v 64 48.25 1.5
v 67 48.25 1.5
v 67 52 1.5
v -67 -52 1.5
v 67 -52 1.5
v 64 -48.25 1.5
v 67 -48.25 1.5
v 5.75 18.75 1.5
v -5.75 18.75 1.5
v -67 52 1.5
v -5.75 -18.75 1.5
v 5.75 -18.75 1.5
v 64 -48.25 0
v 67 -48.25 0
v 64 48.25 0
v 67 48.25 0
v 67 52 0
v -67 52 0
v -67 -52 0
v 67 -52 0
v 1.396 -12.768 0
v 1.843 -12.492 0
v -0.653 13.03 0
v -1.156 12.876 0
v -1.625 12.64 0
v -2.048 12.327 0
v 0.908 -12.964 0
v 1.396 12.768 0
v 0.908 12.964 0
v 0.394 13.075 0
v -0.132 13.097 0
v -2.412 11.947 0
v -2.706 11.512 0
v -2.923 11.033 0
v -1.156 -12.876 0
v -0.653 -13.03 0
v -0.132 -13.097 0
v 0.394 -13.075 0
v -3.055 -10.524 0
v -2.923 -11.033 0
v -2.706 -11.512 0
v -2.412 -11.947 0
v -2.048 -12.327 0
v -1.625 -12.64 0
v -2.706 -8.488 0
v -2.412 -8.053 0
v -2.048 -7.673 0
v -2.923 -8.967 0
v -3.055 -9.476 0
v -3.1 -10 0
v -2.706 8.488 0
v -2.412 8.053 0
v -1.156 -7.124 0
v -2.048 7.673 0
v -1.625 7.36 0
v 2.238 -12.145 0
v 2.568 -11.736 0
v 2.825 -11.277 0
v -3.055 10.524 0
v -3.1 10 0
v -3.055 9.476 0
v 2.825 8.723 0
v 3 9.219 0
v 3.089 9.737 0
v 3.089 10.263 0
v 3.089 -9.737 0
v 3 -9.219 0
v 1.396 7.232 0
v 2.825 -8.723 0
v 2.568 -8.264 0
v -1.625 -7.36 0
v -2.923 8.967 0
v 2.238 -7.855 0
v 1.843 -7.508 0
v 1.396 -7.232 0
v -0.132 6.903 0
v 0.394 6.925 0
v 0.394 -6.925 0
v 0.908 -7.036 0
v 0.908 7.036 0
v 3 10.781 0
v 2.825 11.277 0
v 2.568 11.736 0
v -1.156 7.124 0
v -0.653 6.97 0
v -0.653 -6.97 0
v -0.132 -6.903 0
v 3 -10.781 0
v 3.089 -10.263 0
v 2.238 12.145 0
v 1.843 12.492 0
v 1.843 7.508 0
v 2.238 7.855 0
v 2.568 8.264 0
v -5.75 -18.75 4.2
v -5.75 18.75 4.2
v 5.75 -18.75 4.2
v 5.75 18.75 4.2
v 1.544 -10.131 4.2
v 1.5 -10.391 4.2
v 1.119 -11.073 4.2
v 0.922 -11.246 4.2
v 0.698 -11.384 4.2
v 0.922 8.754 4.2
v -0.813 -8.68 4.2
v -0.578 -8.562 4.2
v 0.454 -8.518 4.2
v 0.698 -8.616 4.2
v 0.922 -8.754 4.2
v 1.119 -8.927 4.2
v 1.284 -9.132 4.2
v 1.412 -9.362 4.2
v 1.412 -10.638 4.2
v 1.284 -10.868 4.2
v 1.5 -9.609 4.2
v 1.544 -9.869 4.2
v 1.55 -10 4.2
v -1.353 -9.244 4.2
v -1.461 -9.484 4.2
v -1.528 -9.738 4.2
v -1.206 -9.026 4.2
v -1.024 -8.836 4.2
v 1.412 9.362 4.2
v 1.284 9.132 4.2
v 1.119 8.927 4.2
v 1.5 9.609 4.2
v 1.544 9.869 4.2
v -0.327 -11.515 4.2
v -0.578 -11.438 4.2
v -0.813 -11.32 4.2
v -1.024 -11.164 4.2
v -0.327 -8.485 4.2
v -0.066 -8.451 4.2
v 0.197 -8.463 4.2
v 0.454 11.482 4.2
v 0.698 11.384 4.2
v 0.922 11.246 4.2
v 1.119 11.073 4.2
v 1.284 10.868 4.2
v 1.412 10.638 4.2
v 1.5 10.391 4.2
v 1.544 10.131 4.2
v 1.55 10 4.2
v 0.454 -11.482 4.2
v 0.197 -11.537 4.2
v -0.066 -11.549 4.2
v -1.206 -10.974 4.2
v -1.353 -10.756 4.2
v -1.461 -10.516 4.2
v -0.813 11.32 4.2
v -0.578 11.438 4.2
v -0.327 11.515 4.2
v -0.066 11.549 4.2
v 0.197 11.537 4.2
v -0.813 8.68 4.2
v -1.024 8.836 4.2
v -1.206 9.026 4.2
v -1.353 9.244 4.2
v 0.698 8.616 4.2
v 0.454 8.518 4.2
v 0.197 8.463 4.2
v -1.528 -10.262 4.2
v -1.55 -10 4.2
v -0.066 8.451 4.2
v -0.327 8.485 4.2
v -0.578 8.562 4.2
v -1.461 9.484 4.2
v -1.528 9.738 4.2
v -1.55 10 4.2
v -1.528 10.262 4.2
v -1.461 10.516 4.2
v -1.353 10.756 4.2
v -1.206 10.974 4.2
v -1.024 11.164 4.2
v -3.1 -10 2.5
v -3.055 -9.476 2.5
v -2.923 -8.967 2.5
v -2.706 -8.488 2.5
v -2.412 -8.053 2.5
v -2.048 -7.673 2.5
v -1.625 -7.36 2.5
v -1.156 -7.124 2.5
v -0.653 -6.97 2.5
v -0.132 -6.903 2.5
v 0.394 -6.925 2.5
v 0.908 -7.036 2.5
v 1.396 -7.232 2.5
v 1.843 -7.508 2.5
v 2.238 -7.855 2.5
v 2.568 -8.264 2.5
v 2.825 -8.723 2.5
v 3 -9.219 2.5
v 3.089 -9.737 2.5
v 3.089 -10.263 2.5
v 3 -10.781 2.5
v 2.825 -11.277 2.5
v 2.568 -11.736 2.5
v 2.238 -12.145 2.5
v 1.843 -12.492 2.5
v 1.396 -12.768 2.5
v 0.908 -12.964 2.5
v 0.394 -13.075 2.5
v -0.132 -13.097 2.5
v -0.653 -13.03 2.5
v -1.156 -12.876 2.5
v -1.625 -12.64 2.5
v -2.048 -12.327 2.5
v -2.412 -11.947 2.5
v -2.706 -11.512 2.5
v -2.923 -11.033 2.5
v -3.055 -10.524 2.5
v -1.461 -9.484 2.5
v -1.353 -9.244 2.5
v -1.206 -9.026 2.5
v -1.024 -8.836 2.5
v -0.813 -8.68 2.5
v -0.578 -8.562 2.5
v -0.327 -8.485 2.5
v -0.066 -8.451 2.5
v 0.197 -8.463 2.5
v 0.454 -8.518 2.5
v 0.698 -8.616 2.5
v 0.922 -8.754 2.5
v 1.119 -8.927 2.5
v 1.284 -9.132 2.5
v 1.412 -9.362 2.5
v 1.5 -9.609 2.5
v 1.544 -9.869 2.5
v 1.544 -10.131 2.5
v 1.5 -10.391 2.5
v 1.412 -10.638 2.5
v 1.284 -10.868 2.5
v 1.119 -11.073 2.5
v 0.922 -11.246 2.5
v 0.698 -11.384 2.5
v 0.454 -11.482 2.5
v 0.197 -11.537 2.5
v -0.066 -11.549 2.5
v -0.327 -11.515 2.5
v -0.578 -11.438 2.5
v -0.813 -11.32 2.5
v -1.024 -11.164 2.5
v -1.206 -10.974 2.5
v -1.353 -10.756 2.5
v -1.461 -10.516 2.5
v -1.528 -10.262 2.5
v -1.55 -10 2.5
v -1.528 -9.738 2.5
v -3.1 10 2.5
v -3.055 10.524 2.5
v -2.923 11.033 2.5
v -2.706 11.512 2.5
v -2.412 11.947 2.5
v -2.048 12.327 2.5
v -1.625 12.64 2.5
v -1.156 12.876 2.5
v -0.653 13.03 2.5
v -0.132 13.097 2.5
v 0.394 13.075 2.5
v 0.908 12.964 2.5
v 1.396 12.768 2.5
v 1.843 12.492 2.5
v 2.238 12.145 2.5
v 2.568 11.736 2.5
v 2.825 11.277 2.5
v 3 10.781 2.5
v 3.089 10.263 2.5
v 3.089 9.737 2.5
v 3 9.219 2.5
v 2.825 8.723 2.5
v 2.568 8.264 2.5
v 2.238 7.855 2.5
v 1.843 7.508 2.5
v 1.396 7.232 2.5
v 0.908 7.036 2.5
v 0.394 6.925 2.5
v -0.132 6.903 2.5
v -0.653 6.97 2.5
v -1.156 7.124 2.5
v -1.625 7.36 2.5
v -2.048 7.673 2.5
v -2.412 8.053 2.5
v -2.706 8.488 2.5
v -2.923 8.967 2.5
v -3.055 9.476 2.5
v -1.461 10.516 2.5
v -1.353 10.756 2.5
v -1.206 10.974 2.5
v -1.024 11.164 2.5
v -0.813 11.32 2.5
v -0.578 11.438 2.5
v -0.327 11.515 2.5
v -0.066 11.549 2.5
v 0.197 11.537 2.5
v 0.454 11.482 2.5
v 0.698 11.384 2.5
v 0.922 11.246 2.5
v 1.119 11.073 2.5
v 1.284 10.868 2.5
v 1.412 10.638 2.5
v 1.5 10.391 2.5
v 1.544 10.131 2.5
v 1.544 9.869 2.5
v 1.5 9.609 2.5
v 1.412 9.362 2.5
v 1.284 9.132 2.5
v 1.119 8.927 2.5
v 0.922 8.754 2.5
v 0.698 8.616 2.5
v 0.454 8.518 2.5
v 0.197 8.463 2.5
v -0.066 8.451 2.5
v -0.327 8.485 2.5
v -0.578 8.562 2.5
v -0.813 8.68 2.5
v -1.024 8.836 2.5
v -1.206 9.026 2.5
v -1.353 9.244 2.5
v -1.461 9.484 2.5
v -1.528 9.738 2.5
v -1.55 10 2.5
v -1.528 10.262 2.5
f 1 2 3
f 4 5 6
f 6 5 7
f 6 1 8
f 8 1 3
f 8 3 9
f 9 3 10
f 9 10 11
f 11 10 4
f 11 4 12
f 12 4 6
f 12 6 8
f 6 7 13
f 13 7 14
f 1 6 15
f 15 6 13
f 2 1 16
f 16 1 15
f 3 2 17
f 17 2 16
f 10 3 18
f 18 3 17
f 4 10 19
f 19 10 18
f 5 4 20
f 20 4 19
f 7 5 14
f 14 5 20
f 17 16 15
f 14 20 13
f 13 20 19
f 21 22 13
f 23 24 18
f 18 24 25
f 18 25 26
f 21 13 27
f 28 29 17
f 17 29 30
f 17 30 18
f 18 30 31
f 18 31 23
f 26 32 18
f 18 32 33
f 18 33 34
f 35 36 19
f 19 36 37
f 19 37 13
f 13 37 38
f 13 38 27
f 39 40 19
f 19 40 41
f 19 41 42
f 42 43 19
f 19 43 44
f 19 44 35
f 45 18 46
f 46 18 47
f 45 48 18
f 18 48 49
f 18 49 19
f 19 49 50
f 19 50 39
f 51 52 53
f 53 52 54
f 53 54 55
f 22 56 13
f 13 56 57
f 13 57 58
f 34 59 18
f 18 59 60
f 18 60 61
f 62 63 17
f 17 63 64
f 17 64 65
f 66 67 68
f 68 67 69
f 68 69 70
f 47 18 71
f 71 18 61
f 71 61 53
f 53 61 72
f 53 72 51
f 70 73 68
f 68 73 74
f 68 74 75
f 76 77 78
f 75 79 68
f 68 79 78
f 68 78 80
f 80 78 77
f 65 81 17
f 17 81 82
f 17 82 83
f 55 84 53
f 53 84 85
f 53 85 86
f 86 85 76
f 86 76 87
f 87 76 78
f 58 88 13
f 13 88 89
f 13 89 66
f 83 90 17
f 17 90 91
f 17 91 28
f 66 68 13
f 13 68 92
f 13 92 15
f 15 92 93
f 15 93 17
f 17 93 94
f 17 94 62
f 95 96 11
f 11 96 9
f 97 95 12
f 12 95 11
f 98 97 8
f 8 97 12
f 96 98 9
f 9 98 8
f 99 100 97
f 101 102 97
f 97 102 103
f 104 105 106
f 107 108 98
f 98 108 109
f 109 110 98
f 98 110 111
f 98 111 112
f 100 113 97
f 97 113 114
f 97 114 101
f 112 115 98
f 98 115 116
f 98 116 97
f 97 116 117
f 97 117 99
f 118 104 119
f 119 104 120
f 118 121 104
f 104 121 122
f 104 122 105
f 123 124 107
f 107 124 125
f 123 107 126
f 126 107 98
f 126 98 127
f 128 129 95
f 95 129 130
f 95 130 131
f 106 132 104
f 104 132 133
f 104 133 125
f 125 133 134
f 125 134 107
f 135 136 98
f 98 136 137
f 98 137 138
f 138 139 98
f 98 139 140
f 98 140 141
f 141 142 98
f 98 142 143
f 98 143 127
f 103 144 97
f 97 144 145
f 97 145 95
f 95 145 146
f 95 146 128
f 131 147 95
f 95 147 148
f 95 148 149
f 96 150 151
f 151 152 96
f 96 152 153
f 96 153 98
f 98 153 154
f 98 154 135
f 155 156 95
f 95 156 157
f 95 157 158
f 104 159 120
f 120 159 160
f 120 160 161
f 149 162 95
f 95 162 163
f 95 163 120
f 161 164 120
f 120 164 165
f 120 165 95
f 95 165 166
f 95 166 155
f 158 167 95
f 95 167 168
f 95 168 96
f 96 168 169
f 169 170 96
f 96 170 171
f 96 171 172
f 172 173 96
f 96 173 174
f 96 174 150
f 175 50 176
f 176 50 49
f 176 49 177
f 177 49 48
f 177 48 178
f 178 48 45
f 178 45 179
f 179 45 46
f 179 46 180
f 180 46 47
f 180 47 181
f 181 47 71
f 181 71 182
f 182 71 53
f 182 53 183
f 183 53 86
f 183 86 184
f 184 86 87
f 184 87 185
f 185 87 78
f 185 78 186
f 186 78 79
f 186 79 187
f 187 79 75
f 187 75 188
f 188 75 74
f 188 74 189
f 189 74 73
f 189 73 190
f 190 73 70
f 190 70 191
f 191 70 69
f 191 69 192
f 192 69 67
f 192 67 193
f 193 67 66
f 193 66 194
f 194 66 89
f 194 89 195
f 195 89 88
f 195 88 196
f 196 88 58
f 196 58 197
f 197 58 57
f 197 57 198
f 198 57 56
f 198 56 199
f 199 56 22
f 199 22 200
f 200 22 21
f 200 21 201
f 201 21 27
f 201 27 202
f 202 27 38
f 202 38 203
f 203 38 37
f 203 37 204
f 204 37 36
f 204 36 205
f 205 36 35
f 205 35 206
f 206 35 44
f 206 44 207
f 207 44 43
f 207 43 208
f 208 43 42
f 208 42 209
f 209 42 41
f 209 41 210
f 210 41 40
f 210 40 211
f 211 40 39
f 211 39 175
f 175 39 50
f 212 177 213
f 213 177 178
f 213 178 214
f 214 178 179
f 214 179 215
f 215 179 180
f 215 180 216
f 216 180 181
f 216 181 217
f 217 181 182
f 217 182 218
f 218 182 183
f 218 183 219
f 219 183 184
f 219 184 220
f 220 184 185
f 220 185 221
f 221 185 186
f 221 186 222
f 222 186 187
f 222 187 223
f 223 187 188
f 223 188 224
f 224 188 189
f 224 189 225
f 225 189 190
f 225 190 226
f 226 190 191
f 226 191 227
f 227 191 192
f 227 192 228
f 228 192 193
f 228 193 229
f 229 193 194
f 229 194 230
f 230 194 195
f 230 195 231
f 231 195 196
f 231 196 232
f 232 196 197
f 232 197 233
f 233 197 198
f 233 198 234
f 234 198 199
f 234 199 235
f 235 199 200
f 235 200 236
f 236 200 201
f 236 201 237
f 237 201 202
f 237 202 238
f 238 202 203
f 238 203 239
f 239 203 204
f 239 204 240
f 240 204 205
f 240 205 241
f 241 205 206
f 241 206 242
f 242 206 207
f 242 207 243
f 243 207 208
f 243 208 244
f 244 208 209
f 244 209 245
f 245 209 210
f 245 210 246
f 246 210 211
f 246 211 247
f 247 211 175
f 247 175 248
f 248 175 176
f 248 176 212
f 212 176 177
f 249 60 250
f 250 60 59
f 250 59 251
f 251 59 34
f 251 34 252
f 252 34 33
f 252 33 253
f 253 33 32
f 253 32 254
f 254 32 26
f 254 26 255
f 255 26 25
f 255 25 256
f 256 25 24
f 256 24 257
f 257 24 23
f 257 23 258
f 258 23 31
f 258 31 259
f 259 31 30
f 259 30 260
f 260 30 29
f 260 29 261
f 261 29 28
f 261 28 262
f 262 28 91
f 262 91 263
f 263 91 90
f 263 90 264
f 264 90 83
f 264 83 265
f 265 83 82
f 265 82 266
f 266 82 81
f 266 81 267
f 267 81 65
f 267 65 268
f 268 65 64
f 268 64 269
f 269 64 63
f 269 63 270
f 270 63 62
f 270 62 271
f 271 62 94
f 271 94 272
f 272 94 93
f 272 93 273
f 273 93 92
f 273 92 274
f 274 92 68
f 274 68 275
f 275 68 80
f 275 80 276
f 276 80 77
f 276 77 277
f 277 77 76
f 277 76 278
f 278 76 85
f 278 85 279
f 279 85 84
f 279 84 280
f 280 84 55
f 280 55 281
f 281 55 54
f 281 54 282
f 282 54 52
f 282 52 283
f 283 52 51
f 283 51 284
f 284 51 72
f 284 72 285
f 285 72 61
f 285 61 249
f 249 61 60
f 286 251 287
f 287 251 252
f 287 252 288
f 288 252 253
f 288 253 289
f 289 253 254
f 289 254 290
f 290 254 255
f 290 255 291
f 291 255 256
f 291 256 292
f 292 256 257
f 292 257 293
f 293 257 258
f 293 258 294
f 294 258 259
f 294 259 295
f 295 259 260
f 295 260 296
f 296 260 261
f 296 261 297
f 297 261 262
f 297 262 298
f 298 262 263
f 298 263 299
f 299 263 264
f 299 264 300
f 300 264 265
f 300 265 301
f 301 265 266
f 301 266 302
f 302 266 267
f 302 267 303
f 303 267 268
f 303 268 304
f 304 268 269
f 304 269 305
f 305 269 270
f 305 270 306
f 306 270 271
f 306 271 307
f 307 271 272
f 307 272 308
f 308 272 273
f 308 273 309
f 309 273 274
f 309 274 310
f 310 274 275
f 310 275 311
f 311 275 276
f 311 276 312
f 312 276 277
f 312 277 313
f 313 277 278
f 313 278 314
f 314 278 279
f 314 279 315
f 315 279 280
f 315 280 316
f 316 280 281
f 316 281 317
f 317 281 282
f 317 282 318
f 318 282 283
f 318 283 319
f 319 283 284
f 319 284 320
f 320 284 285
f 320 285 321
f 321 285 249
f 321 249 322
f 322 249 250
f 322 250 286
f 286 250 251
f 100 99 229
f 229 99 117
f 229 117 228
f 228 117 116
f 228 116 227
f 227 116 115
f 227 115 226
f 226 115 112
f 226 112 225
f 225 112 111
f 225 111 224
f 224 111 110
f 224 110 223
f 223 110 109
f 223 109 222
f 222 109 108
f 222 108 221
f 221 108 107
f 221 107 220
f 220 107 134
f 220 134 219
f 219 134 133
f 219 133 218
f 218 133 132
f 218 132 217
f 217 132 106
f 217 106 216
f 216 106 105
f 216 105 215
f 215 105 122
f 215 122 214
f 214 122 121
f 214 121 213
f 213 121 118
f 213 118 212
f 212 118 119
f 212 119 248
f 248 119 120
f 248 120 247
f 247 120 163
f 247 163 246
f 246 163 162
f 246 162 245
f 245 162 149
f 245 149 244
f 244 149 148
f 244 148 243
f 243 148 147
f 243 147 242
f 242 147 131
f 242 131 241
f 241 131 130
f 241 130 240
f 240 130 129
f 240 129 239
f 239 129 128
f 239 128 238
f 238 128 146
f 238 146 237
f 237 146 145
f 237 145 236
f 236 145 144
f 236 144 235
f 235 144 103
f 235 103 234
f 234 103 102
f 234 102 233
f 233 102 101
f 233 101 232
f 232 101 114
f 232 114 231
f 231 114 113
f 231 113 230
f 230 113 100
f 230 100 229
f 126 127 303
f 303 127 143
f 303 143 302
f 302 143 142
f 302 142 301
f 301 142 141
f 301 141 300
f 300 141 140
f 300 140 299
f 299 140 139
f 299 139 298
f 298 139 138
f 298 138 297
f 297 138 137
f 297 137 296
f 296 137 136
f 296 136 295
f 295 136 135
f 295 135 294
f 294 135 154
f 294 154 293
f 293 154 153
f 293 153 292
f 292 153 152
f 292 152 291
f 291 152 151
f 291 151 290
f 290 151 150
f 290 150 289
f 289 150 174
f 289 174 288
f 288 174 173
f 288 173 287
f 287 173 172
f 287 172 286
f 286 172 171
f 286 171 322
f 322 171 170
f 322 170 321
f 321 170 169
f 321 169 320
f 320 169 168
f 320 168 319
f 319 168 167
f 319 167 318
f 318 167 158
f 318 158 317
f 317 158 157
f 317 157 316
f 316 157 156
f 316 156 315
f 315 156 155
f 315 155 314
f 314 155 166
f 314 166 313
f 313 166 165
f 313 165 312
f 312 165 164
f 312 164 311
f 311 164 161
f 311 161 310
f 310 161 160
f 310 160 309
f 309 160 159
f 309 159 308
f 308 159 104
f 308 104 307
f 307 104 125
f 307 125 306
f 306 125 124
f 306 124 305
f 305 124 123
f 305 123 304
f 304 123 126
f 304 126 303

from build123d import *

# Parameters (mm, degrees)
EXTRUDE_2_DEPTH     = 1.5
SKETCH_2_W          = 11.5
SKETCH_2_H          = 37.5
EXTRUDE_3_DEPTH     = 2.7
SKETCH_3_R          = 3.1
CUT_EXTRUDE_1_DEPTH = 2.5
SKETCH_4_R          = 1.55
CUT_EXTRUDE_2_DEPTH = 2.5


with BuildPart() as part:
    # Эскиз1 → Бобышка-Вытянуть2 (new body)
    with BuildSketch(Plane.XY):
        Polygon((-67, -52), (67, -52), (67, -48.25), (64, -48.25), (64, 48.25), (67, 48.25), (67, 52), (-67, 52), align=None)
    extrude(amount=EXTRUDE_2_DEPTH)

    # Эскиз2 → Бобышка-Вытянуть3 (add)
    with BuildSketch(Plane.XY.offset(1.5)):
        Rectangle(SKETCH_2_W, SKETCH_2_H)
    extrude(amount=EXTRUDE_3_DEPTH)

    # Эскиз3 → Вырез-Вытянуть1 (cut)
    with BuildSketch(Plane(origin=(0, 0, 0), x_dir=(-1, 0, 0), z_dir=(0, 0, -1))):
        with Locations((0, -10)):
            Circle(SKETCH_3_R)
        with Locations((0, 10)):
            Circle(SKETCH_3_R)
    extrude(amount=-CUT_EXTRUDE_1_DEPTH, mode=Mode.SUBTRACT)

    # Эскиз4 → Вырез-Вытянуть2 (cut)
    with BuildSketch(Plane(origin=(0, 0, 2.5), x_dir=(-1, 0, 0), z_dir=(0, 0, -1))):
        with Locations((0, -10)):
            Circle(SKETCH_4_R)
        with Locations((0, 10)):
            Circle(SKETCH_4_R)
    extrude(amount=-CUT_EXTRUDE_2_DEPTH, mode=Mode.SUBTRACT)


solid = part.part
